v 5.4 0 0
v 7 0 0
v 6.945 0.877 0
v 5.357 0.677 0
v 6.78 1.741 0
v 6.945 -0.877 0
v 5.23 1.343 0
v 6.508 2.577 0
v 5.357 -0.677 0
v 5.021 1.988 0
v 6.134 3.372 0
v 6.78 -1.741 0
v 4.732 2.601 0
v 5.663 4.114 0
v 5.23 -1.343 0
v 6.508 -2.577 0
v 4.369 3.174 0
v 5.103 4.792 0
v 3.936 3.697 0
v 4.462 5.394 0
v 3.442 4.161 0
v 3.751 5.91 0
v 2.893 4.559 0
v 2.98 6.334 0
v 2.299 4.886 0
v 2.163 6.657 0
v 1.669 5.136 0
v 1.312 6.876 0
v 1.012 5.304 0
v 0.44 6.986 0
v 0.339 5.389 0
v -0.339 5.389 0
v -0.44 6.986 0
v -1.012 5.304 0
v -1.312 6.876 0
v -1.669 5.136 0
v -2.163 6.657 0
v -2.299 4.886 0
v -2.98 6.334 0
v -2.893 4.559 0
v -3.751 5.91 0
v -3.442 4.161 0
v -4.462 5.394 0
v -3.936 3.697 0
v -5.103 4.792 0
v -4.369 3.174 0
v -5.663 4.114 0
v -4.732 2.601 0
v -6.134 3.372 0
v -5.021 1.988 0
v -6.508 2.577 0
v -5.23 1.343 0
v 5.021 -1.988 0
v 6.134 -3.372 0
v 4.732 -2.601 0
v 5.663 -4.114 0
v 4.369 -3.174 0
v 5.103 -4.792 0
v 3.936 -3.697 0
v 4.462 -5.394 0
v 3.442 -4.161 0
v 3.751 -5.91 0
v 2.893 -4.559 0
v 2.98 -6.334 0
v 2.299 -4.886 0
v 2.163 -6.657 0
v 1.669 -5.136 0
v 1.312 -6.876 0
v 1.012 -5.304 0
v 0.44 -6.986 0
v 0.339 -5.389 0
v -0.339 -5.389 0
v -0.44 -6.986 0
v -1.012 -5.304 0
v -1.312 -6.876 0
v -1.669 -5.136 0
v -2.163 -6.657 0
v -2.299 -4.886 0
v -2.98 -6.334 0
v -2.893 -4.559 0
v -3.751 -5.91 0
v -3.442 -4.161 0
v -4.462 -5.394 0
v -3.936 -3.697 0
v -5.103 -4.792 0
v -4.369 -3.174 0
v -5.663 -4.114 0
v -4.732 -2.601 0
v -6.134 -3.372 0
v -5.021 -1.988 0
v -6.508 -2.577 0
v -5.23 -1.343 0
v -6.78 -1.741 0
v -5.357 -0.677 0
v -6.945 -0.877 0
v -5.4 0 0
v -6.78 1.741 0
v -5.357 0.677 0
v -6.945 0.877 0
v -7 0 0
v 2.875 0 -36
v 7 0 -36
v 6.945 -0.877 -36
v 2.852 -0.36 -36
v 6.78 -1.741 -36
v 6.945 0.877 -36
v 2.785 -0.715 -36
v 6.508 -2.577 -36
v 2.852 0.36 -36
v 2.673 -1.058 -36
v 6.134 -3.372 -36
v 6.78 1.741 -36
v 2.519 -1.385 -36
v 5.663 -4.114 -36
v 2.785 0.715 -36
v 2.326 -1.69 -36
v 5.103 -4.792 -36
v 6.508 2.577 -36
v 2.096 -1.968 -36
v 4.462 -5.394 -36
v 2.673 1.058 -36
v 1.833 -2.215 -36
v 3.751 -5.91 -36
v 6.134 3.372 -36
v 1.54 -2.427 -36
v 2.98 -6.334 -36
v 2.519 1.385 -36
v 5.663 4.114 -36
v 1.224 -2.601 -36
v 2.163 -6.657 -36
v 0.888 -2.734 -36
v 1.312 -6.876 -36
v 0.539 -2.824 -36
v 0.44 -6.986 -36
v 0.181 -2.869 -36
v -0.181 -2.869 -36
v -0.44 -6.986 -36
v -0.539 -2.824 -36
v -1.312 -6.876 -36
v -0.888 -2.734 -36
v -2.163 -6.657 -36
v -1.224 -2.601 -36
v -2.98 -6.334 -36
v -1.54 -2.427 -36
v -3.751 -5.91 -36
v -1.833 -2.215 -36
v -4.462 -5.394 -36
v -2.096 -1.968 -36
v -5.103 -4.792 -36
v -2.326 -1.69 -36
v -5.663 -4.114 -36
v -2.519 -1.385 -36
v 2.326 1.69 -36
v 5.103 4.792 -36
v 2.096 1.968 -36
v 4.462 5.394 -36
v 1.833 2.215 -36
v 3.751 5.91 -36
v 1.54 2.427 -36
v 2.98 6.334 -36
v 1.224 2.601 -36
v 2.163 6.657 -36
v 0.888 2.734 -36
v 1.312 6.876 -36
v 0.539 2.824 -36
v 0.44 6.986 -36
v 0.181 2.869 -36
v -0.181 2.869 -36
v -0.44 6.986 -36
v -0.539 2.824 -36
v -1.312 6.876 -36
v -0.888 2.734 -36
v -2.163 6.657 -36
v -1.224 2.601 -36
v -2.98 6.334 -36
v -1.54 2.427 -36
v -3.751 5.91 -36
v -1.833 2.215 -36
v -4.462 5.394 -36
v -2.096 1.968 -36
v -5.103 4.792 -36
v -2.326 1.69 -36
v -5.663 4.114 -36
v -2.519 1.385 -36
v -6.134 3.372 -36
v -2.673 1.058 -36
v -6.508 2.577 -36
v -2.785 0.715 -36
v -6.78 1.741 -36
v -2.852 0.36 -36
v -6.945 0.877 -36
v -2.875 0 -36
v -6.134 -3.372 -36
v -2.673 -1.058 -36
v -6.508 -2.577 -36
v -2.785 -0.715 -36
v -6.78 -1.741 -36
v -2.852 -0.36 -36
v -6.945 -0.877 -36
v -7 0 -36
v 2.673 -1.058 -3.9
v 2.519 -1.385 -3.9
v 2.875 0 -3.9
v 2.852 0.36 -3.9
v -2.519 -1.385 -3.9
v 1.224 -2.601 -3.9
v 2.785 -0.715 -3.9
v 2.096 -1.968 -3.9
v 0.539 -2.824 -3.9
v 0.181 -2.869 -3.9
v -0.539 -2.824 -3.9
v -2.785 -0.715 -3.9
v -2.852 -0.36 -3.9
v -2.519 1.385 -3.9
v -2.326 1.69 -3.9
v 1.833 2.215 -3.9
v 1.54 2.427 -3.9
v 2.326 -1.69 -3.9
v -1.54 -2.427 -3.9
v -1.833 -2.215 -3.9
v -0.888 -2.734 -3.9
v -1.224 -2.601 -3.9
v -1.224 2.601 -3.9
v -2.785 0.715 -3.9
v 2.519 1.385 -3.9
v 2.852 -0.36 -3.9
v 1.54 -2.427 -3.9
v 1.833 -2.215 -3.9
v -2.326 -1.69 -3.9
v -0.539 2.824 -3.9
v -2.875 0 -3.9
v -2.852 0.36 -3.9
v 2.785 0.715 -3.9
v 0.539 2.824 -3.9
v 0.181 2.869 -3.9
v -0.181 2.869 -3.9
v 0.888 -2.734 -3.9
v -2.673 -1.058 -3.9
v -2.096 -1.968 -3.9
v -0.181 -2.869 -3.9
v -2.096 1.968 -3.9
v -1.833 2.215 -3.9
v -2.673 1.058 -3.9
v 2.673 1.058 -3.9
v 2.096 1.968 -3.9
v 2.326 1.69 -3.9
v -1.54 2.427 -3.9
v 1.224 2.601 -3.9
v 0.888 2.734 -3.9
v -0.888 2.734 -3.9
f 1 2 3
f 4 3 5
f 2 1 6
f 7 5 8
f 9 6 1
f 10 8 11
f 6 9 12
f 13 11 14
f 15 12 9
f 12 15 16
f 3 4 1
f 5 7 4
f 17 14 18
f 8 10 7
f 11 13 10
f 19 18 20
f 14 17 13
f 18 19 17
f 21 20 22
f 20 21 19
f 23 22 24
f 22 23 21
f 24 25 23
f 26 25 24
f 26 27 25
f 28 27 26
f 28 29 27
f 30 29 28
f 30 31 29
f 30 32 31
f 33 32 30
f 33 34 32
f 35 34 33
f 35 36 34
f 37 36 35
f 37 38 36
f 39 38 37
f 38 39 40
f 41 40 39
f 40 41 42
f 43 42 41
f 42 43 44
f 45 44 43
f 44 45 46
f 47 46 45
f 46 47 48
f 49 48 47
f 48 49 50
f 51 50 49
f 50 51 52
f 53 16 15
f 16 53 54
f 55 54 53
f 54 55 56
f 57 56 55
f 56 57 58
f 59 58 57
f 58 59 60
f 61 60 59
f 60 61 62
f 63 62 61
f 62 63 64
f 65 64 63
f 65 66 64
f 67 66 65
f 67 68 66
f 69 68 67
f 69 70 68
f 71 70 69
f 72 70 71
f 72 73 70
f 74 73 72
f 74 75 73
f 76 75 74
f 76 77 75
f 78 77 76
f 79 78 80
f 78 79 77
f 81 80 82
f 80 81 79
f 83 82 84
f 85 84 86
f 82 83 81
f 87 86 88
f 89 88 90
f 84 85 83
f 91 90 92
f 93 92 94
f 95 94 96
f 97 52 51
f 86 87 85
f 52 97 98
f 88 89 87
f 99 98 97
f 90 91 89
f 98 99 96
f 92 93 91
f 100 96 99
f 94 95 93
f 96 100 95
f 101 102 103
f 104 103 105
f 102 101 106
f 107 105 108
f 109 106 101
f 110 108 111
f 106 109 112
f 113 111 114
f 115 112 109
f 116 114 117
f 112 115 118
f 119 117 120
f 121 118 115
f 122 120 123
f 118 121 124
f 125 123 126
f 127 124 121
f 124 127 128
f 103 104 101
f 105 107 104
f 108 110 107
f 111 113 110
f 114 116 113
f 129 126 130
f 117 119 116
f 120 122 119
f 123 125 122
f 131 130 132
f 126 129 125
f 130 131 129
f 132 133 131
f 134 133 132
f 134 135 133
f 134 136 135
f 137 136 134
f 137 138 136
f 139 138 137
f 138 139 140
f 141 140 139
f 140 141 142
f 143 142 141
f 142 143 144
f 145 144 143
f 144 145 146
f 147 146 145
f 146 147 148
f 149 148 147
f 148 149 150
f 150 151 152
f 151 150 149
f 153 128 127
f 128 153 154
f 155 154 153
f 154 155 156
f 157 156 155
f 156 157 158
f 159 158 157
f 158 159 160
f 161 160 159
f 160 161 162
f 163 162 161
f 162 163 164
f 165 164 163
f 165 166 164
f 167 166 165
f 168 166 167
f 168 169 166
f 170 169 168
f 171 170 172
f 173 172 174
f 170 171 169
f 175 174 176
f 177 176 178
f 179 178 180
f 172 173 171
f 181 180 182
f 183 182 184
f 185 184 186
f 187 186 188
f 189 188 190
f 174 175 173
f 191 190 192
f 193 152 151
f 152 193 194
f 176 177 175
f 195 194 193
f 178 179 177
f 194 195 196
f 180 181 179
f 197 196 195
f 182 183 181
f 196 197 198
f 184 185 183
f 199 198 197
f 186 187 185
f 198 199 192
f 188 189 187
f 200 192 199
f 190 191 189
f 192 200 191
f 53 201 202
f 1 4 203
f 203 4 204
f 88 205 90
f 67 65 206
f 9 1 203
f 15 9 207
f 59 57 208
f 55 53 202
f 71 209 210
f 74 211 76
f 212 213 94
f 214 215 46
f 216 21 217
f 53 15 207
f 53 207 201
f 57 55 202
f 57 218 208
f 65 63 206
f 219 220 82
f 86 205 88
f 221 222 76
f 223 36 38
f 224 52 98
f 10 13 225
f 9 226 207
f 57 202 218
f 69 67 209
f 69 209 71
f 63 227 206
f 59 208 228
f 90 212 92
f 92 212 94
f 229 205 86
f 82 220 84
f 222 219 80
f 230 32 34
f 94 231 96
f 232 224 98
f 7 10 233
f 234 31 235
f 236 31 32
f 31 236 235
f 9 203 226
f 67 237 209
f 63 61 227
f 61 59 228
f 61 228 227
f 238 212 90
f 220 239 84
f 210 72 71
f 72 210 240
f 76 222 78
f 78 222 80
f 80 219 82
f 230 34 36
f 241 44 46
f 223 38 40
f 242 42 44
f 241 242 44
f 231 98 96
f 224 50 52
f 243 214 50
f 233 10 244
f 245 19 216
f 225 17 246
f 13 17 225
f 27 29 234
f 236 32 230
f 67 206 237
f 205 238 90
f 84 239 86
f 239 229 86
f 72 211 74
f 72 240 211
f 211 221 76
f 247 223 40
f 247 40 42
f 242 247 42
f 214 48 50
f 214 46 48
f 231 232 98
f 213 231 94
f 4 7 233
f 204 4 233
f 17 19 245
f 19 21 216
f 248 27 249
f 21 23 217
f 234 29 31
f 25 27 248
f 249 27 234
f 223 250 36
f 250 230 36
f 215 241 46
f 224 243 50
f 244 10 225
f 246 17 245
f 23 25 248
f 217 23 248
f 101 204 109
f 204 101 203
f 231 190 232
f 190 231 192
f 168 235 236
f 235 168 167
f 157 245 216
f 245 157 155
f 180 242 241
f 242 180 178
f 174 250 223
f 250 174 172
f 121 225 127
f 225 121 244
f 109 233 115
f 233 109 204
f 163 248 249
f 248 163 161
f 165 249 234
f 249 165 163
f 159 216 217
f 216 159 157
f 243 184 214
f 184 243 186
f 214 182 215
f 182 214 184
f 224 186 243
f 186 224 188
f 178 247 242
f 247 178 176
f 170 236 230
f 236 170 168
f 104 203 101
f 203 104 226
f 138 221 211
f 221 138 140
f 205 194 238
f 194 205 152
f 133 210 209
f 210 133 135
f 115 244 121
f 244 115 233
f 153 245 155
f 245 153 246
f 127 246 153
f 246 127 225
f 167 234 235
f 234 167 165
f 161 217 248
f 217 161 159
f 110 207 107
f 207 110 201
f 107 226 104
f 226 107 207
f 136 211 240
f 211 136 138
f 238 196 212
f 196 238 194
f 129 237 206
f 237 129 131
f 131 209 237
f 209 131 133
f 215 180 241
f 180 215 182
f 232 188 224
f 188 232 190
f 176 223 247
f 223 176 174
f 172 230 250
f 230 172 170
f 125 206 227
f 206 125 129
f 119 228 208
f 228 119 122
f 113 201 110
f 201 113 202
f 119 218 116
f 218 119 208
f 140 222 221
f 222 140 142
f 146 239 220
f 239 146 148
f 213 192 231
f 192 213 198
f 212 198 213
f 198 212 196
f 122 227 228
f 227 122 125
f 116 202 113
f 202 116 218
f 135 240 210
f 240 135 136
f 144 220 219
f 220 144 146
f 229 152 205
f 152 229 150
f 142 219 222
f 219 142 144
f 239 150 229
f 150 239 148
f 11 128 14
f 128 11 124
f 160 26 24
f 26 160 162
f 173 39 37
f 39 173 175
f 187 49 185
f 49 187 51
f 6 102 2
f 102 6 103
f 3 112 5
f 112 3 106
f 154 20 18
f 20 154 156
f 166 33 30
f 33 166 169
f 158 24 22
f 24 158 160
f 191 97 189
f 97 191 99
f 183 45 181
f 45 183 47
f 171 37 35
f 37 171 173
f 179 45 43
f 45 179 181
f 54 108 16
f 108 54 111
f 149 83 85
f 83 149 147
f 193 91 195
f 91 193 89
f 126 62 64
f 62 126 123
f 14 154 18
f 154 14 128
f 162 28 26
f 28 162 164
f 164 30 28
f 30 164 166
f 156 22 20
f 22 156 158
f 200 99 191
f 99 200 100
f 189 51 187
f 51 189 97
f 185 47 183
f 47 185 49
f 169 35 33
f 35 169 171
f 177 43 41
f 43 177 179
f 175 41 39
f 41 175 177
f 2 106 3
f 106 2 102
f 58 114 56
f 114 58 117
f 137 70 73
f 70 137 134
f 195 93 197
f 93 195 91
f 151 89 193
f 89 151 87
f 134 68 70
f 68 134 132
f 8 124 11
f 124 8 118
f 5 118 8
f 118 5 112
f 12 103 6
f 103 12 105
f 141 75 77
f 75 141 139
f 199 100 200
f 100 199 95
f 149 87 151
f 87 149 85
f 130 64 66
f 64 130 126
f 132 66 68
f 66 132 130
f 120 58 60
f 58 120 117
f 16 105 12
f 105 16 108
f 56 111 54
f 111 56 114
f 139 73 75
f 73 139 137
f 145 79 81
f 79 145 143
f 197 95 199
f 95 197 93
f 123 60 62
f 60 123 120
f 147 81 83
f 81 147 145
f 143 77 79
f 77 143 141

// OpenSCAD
$fn = 50;


difference() {
	union() {
		translate(v = [0, 0, -36.0000000000]) {
			cylinder(h = 36, r = 7.0000000000);
		}
		cylinder(h = 0, r = 16.0000000000);
	}
	union() {
		translate(v = [0, 0, 0]) {
			rotate(a = [0, 0, 0]) {
				difference() {
					union() {
						#translate(v = [0, 0, -36.0000000000]) {
							cylinder(h = 36, r = 2.6000000000);
						}
						#translate(v = [0, 0, -3.9000000000]) {
							cylinder(h = 3.9000000000, r1 = 2.8750000000, r2 = 5.4000000000);
						}
						#translate(v = [0, 0, -36.0000000000]) {
							cylinder(h = 36, r = 2.8750000000);
						}
						#translate(v = [0, 0, -36.0000000000]) {
							cylinder(h = 36, r = 2.6000000000);
						}
					}
					union();
				}
			}
		}
	}
}
